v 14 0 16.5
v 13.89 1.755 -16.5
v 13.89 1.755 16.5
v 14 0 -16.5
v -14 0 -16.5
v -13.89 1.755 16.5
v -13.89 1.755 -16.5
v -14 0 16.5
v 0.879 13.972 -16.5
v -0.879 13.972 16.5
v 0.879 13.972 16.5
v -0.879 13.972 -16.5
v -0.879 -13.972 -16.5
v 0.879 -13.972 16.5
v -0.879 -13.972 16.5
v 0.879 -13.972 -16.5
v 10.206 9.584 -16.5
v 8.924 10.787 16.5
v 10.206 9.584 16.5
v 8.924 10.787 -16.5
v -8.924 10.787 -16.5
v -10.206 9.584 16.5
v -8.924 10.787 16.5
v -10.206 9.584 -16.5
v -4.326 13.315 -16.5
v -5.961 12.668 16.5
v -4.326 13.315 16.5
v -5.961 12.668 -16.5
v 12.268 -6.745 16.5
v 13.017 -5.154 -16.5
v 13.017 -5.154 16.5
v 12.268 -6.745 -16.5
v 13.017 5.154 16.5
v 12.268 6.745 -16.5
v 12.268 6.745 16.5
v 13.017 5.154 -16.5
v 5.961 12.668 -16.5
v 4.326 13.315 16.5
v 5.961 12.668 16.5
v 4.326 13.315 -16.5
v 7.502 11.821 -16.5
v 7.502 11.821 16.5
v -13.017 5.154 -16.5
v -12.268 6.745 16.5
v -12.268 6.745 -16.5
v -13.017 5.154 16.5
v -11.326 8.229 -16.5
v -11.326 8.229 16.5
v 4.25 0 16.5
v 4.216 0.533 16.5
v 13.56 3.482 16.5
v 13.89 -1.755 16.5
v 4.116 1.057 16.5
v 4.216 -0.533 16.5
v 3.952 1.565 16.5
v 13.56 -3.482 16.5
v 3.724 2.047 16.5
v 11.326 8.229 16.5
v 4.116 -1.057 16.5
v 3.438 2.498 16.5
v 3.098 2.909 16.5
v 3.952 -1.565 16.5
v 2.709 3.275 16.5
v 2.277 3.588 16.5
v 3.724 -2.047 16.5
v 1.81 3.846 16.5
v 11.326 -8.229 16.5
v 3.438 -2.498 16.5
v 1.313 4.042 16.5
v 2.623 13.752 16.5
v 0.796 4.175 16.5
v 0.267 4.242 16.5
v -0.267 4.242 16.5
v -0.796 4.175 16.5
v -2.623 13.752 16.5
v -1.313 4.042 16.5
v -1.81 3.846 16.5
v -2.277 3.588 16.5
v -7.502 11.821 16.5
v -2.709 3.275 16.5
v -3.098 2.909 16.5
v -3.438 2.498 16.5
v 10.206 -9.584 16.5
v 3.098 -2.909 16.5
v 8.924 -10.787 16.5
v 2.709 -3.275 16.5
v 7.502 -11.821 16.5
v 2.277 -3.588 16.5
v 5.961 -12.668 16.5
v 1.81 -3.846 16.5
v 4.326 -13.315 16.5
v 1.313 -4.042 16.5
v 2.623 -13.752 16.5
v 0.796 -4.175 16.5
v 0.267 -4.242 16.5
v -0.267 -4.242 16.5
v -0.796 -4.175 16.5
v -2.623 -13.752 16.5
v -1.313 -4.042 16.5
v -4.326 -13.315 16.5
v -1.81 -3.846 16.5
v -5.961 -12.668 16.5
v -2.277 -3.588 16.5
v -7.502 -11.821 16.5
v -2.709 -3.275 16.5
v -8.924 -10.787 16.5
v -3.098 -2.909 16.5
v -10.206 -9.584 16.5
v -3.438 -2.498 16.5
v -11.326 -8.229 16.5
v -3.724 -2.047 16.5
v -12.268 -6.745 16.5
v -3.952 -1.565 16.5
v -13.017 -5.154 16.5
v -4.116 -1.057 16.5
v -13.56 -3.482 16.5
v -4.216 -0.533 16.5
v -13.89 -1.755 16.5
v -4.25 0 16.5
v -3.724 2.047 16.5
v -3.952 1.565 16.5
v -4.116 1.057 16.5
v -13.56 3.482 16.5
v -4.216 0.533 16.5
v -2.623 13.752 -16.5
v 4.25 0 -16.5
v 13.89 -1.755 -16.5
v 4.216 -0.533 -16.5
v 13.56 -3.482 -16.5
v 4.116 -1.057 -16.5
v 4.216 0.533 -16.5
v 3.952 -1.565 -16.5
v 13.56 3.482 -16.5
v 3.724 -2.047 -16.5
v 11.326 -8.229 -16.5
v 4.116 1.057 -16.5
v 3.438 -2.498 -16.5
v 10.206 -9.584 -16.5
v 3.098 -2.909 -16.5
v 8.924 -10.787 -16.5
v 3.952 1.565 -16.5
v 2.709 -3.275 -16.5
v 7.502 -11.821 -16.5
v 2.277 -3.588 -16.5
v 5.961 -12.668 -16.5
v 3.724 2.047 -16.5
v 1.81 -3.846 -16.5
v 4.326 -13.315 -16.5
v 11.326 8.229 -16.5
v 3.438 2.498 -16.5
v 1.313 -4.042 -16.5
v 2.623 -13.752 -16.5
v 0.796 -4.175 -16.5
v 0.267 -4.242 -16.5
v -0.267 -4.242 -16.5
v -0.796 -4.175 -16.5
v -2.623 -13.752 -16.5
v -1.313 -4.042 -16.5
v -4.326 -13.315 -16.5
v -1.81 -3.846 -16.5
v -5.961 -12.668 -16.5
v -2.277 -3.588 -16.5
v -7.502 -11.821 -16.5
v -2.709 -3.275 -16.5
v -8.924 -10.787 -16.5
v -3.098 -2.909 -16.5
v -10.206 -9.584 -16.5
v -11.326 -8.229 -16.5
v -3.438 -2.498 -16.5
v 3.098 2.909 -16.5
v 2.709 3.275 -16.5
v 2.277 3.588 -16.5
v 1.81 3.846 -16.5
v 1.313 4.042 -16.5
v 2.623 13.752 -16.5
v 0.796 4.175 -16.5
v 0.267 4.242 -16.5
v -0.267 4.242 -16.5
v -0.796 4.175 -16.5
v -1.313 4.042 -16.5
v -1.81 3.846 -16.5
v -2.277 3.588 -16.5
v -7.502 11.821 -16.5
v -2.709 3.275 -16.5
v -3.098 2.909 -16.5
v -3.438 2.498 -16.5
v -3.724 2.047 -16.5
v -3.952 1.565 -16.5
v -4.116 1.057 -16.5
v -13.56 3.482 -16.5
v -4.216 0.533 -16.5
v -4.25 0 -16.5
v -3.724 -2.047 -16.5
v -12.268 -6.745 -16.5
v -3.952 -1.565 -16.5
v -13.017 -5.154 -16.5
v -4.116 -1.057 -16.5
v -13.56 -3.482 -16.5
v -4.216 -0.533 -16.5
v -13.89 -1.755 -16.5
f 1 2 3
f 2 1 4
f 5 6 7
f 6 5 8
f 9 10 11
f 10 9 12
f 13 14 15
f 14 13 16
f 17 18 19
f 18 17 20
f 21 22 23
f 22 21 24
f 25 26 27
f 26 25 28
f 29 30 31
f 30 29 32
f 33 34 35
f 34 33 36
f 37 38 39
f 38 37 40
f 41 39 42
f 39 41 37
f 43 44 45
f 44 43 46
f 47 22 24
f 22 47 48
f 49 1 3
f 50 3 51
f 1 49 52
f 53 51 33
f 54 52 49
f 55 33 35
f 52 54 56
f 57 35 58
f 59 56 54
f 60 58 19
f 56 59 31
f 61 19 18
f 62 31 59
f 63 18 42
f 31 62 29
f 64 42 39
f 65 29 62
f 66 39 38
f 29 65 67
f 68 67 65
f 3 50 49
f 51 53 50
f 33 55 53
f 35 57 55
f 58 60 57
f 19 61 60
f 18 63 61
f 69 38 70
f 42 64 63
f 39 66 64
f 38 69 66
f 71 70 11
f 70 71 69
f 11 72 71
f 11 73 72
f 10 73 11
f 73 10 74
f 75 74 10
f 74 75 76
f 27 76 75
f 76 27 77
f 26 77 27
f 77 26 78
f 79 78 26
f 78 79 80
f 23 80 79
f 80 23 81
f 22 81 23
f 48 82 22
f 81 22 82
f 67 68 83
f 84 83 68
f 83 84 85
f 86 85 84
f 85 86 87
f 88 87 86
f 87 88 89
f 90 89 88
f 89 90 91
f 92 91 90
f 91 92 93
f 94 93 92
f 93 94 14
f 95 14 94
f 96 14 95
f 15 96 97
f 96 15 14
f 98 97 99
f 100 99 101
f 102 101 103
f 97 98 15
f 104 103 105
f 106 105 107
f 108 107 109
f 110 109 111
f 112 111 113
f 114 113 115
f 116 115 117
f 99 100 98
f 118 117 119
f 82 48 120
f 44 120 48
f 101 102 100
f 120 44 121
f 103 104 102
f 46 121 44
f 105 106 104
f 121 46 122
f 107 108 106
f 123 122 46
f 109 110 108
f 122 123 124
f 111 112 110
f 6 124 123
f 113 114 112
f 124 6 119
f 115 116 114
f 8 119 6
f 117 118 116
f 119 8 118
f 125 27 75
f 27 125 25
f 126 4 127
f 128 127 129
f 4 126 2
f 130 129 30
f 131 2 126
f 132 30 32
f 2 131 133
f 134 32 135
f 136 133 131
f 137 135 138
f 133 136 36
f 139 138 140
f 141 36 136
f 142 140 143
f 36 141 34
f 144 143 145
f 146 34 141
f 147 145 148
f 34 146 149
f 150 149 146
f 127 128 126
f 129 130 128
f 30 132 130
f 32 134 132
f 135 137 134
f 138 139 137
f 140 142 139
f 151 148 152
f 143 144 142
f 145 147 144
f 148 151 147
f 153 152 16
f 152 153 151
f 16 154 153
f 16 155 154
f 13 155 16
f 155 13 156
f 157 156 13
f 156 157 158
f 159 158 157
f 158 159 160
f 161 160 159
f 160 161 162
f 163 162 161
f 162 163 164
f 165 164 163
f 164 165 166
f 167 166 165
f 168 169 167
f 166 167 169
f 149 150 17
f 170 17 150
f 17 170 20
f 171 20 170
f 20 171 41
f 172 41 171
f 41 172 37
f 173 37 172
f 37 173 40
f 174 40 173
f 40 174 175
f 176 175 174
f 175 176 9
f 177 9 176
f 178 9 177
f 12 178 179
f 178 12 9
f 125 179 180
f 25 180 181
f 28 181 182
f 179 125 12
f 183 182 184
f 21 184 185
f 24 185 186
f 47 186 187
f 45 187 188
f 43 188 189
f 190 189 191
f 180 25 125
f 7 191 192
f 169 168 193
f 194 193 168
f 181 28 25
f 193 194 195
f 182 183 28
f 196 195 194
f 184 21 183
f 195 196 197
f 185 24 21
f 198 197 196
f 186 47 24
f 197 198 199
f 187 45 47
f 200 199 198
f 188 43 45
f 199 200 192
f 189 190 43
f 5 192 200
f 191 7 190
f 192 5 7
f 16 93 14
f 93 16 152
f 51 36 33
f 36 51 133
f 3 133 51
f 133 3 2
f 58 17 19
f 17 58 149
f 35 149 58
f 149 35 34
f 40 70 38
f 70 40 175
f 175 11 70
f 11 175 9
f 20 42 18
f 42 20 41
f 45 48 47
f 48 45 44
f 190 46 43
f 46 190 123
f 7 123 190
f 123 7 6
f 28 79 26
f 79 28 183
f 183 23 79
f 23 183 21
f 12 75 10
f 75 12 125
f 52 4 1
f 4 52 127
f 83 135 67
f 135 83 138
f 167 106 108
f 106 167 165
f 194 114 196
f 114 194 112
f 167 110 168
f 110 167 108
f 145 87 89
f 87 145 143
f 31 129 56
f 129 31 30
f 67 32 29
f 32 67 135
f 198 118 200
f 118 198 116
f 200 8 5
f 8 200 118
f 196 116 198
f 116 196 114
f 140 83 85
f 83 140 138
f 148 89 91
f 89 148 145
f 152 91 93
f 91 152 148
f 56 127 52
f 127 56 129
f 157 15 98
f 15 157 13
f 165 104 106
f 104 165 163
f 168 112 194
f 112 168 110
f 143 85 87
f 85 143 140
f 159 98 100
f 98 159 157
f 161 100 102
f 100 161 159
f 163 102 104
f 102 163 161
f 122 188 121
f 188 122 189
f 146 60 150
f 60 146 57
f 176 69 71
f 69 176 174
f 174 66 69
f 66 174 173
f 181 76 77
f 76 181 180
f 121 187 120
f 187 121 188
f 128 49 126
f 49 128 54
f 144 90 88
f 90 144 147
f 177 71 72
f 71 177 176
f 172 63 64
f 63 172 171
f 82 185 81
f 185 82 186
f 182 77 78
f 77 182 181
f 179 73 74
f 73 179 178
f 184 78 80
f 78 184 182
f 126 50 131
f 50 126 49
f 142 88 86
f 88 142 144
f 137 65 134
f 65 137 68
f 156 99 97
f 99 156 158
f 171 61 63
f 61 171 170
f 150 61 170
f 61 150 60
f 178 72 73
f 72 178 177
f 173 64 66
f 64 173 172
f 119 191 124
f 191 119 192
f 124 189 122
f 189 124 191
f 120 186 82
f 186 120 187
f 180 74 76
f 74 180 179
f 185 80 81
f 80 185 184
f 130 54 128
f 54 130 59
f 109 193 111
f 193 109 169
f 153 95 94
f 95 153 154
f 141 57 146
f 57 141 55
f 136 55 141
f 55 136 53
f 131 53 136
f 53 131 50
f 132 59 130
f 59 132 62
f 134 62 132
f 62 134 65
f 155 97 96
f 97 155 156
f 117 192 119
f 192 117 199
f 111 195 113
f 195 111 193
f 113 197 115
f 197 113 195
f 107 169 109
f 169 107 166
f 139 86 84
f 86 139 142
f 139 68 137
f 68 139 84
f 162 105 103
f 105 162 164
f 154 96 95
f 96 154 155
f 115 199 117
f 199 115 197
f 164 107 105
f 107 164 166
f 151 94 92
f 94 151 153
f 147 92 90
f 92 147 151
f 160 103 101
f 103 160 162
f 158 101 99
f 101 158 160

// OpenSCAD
$fn = 50;


difference() {
	union() {
		translate(v = [0, 0, -16.5000000000]) {
			cylinder(h = 33, r = 14.0000000000);
		}
	}
	union() {
		translate(v = [0, 0, -100.0000000000]) {
			cylinder(h = 200, r = 4.2500000000);
		}
	}
}
